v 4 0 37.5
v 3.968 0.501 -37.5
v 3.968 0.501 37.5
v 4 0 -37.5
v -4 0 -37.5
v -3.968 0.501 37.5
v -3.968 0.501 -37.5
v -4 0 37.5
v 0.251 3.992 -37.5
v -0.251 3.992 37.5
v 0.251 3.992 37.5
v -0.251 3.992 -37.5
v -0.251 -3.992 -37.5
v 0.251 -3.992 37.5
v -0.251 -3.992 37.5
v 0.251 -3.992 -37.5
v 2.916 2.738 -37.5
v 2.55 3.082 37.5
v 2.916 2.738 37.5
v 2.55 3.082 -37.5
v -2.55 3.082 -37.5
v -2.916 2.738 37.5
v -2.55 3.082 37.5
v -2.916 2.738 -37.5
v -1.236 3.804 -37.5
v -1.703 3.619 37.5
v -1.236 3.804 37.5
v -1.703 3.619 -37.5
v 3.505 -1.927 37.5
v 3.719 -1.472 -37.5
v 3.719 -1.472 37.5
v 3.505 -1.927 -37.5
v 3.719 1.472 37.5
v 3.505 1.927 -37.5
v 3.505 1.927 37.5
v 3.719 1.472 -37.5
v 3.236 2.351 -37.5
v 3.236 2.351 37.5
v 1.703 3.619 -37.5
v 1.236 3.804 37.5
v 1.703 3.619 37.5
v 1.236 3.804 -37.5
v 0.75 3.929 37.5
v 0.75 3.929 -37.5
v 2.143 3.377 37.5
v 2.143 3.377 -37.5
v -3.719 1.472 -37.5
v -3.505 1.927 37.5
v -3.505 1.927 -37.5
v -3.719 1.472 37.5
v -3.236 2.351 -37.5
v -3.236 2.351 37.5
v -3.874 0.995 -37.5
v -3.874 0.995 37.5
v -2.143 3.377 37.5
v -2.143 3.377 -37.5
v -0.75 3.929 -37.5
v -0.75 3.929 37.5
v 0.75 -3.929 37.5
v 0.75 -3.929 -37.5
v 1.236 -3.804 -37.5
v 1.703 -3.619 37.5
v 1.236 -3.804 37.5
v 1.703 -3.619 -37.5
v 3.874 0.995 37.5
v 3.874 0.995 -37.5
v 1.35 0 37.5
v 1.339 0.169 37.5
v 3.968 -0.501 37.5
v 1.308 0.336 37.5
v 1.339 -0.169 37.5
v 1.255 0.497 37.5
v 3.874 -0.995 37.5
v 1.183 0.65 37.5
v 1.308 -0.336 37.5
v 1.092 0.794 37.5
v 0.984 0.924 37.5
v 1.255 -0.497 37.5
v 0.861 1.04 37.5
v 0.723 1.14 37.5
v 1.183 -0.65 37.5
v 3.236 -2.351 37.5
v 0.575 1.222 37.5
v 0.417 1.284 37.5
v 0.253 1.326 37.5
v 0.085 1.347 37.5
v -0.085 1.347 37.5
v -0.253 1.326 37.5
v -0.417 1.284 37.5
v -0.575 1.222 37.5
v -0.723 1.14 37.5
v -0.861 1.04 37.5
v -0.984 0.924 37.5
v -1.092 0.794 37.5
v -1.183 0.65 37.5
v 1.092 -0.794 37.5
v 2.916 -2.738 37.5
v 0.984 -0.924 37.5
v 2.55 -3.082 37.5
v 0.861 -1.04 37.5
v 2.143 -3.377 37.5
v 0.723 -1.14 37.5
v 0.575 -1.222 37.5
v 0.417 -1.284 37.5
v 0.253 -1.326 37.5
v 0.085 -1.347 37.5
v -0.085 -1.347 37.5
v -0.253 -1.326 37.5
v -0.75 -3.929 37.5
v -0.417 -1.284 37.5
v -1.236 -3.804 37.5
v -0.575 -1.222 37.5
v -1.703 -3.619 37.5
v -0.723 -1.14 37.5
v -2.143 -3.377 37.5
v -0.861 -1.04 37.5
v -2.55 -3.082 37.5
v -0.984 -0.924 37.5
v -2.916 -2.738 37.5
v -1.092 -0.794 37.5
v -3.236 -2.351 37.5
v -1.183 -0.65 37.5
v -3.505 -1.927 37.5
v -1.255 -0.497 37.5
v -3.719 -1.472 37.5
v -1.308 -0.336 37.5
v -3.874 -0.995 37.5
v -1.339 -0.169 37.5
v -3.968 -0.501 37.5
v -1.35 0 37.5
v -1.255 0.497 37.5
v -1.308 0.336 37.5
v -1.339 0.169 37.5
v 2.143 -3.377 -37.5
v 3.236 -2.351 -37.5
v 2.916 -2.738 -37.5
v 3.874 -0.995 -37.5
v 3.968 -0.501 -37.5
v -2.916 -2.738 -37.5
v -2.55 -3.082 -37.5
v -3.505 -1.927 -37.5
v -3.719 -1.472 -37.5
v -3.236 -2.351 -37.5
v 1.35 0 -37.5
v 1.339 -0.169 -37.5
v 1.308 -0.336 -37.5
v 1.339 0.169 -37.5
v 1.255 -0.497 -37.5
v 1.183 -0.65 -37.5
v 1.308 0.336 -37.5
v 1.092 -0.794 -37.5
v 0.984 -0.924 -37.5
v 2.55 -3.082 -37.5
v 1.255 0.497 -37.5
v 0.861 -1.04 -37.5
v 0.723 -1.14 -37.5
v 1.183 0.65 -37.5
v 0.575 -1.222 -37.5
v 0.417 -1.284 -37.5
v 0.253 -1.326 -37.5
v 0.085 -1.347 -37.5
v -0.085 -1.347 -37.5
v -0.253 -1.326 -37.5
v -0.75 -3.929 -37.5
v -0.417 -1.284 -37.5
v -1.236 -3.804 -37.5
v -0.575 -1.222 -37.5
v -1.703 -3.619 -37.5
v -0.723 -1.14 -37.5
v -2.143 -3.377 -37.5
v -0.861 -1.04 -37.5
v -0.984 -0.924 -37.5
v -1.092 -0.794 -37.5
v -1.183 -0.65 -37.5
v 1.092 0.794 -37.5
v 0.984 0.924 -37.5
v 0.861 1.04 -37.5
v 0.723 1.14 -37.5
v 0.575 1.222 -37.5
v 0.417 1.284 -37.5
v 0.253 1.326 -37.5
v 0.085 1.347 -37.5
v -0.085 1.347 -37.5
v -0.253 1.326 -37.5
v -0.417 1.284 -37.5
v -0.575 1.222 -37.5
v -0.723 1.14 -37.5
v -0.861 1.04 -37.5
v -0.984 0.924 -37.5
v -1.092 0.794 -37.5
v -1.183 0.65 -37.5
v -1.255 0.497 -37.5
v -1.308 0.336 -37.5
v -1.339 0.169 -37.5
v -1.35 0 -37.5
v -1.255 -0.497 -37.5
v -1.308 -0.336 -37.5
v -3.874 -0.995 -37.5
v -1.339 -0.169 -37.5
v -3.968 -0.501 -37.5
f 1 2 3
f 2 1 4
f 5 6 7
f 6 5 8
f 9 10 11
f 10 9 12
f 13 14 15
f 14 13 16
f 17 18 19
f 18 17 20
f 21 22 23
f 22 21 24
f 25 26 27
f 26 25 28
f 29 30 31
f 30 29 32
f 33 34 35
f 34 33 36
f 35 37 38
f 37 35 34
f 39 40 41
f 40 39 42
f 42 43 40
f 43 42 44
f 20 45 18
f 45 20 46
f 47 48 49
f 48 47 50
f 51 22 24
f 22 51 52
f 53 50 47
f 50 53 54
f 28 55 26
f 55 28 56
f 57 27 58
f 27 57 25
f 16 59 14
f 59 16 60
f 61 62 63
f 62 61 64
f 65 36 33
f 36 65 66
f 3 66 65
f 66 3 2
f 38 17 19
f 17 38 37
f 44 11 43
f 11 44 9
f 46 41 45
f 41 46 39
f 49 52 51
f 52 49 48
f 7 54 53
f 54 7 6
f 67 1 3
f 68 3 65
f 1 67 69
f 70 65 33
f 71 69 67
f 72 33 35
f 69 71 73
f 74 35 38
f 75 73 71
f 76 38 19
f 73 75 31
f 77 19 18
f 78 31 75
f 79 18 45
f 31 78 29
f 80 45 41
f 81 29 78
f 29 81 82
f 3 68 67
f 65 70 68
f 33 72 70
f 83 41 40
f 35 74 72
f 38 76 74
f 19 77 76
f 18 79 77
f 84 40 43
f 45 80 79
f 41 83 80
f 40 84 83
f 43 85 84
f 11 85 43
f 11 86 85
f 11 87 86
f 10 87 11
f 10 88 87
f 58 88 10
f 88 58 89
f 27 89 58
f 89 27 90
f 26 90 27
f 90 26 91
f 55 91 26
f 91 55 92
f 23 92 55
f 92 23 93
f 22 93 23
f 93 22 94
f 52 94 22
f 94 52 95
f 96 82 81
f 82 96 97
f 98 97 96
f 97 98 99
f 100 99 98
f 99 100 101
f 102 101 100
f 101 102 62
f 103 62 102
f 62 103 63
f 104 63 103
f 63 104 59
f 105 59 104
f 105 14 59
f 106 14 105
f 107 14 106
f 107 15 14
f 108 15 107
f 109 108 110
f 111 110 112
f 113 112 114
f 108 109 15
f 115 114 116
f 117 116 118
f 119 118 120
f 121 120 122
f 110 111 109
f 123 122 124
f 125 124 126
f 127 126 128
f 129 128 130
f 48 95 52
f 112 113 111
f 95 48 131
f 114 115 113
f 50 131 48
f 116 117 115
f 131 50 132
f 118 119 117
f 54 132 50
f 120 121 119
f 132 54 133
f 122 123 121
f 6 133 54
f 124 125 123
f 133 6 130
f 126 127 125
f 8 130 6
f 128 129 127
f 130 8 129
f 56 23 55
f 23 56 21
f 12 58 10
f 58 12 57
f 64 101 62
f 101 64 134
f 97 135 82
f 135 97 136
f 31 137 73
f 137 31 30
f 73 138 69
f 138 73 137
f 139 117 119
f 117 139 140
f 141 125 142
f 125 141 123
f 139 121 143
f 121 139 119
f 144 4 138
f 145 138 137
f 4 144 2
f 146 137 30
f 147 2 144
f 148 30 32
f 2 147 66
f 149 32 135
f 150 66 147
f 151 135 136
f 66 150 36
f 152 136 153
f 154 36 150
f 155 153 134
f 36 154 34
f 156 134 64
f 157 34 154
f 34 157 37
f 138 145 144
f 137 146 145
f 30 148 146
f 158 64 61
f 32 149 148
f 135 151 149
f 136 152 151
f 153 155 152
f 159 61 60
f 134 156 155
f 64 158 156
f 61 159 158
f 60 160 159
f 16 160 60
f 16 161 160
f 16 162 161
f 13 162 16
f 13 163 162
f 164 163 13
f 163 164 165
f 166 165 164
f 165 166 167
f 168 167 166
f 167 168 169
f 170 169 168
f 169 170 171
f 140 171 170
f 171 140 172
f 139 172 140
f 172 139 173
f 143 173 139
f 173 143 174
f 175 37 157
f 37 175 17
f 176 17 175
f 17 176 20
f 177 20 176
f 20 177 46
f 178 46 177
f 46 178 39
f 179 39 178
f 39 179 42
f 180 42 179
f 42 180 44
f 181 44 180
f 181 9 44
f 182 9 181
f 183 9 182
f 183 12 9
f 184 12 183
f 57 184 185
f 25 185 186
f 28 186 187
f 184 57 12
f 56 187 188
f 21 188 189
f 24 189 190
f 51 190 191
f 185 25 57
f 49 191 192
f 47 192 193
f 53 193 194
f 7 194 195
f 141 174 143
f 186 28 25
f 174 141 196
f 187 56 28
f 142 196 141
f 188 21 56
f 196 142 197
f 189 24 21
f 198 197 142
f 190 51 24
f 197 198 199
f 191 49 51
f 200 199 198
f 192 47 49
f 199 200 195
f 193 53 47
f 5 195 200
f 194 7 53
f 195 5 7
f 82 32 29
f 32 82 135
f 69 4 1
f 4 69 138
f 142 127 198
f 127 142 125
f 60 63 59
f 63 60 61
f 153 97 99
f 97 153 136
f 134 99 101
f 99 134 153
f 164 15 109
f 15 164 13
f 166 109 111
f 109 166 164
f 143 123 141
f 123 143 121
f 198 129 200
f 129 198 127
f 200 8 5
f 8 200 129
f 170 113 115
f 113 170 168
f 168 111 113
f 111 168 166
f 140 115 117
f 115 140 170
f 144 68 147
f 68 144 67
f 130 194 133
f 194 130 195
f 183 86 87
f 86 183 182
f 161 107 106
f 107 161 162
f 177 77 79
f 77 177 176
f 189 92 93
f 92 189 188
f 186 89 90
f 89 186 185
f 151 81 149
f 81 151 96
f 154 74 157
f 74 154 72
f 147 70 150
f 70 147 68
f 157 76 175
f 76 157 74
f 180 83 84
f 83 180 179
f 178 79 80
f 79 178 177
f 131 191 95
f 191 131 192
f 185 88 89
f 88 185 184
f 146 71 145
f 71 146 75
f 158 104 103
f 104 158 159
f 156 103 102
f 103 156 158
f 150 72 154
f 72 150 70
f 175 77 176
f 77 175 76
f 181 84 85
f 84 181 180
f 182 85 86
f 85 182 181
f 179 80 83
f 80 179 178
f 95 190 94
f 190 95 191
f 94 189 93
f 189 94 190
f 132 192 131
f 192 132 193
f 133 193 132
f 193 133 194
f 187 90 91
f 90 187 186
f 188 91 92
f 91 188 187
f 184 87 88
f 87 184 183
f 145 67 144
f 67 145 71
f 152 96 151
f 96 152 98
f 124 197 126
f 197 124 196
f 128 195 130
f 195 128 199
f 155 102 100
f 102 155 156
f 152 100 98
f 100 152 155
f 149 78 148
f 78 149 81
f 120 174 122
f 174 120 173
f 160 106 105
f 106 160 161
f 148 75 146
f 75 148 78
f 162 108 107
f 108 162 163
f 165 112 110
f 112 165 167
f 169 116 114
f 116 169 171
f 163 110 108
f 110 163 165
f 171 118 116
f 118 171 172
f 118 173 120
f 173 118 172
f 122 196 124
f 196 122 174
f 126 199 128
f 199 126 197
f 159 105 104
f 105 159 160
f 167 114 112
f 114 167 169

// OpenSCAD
$fn = 50;


difference() {
	union() {
		translate(v = [0, 0, -37.5000000000]) {
			cylinder(h = 75, r = 4.0000000000);
		}
	}
	union() {
		translate(v = [0, 0, -100.0000000000]) {
			cylinder(h = 200, r = 1.3500000000);
		}
	}
}
